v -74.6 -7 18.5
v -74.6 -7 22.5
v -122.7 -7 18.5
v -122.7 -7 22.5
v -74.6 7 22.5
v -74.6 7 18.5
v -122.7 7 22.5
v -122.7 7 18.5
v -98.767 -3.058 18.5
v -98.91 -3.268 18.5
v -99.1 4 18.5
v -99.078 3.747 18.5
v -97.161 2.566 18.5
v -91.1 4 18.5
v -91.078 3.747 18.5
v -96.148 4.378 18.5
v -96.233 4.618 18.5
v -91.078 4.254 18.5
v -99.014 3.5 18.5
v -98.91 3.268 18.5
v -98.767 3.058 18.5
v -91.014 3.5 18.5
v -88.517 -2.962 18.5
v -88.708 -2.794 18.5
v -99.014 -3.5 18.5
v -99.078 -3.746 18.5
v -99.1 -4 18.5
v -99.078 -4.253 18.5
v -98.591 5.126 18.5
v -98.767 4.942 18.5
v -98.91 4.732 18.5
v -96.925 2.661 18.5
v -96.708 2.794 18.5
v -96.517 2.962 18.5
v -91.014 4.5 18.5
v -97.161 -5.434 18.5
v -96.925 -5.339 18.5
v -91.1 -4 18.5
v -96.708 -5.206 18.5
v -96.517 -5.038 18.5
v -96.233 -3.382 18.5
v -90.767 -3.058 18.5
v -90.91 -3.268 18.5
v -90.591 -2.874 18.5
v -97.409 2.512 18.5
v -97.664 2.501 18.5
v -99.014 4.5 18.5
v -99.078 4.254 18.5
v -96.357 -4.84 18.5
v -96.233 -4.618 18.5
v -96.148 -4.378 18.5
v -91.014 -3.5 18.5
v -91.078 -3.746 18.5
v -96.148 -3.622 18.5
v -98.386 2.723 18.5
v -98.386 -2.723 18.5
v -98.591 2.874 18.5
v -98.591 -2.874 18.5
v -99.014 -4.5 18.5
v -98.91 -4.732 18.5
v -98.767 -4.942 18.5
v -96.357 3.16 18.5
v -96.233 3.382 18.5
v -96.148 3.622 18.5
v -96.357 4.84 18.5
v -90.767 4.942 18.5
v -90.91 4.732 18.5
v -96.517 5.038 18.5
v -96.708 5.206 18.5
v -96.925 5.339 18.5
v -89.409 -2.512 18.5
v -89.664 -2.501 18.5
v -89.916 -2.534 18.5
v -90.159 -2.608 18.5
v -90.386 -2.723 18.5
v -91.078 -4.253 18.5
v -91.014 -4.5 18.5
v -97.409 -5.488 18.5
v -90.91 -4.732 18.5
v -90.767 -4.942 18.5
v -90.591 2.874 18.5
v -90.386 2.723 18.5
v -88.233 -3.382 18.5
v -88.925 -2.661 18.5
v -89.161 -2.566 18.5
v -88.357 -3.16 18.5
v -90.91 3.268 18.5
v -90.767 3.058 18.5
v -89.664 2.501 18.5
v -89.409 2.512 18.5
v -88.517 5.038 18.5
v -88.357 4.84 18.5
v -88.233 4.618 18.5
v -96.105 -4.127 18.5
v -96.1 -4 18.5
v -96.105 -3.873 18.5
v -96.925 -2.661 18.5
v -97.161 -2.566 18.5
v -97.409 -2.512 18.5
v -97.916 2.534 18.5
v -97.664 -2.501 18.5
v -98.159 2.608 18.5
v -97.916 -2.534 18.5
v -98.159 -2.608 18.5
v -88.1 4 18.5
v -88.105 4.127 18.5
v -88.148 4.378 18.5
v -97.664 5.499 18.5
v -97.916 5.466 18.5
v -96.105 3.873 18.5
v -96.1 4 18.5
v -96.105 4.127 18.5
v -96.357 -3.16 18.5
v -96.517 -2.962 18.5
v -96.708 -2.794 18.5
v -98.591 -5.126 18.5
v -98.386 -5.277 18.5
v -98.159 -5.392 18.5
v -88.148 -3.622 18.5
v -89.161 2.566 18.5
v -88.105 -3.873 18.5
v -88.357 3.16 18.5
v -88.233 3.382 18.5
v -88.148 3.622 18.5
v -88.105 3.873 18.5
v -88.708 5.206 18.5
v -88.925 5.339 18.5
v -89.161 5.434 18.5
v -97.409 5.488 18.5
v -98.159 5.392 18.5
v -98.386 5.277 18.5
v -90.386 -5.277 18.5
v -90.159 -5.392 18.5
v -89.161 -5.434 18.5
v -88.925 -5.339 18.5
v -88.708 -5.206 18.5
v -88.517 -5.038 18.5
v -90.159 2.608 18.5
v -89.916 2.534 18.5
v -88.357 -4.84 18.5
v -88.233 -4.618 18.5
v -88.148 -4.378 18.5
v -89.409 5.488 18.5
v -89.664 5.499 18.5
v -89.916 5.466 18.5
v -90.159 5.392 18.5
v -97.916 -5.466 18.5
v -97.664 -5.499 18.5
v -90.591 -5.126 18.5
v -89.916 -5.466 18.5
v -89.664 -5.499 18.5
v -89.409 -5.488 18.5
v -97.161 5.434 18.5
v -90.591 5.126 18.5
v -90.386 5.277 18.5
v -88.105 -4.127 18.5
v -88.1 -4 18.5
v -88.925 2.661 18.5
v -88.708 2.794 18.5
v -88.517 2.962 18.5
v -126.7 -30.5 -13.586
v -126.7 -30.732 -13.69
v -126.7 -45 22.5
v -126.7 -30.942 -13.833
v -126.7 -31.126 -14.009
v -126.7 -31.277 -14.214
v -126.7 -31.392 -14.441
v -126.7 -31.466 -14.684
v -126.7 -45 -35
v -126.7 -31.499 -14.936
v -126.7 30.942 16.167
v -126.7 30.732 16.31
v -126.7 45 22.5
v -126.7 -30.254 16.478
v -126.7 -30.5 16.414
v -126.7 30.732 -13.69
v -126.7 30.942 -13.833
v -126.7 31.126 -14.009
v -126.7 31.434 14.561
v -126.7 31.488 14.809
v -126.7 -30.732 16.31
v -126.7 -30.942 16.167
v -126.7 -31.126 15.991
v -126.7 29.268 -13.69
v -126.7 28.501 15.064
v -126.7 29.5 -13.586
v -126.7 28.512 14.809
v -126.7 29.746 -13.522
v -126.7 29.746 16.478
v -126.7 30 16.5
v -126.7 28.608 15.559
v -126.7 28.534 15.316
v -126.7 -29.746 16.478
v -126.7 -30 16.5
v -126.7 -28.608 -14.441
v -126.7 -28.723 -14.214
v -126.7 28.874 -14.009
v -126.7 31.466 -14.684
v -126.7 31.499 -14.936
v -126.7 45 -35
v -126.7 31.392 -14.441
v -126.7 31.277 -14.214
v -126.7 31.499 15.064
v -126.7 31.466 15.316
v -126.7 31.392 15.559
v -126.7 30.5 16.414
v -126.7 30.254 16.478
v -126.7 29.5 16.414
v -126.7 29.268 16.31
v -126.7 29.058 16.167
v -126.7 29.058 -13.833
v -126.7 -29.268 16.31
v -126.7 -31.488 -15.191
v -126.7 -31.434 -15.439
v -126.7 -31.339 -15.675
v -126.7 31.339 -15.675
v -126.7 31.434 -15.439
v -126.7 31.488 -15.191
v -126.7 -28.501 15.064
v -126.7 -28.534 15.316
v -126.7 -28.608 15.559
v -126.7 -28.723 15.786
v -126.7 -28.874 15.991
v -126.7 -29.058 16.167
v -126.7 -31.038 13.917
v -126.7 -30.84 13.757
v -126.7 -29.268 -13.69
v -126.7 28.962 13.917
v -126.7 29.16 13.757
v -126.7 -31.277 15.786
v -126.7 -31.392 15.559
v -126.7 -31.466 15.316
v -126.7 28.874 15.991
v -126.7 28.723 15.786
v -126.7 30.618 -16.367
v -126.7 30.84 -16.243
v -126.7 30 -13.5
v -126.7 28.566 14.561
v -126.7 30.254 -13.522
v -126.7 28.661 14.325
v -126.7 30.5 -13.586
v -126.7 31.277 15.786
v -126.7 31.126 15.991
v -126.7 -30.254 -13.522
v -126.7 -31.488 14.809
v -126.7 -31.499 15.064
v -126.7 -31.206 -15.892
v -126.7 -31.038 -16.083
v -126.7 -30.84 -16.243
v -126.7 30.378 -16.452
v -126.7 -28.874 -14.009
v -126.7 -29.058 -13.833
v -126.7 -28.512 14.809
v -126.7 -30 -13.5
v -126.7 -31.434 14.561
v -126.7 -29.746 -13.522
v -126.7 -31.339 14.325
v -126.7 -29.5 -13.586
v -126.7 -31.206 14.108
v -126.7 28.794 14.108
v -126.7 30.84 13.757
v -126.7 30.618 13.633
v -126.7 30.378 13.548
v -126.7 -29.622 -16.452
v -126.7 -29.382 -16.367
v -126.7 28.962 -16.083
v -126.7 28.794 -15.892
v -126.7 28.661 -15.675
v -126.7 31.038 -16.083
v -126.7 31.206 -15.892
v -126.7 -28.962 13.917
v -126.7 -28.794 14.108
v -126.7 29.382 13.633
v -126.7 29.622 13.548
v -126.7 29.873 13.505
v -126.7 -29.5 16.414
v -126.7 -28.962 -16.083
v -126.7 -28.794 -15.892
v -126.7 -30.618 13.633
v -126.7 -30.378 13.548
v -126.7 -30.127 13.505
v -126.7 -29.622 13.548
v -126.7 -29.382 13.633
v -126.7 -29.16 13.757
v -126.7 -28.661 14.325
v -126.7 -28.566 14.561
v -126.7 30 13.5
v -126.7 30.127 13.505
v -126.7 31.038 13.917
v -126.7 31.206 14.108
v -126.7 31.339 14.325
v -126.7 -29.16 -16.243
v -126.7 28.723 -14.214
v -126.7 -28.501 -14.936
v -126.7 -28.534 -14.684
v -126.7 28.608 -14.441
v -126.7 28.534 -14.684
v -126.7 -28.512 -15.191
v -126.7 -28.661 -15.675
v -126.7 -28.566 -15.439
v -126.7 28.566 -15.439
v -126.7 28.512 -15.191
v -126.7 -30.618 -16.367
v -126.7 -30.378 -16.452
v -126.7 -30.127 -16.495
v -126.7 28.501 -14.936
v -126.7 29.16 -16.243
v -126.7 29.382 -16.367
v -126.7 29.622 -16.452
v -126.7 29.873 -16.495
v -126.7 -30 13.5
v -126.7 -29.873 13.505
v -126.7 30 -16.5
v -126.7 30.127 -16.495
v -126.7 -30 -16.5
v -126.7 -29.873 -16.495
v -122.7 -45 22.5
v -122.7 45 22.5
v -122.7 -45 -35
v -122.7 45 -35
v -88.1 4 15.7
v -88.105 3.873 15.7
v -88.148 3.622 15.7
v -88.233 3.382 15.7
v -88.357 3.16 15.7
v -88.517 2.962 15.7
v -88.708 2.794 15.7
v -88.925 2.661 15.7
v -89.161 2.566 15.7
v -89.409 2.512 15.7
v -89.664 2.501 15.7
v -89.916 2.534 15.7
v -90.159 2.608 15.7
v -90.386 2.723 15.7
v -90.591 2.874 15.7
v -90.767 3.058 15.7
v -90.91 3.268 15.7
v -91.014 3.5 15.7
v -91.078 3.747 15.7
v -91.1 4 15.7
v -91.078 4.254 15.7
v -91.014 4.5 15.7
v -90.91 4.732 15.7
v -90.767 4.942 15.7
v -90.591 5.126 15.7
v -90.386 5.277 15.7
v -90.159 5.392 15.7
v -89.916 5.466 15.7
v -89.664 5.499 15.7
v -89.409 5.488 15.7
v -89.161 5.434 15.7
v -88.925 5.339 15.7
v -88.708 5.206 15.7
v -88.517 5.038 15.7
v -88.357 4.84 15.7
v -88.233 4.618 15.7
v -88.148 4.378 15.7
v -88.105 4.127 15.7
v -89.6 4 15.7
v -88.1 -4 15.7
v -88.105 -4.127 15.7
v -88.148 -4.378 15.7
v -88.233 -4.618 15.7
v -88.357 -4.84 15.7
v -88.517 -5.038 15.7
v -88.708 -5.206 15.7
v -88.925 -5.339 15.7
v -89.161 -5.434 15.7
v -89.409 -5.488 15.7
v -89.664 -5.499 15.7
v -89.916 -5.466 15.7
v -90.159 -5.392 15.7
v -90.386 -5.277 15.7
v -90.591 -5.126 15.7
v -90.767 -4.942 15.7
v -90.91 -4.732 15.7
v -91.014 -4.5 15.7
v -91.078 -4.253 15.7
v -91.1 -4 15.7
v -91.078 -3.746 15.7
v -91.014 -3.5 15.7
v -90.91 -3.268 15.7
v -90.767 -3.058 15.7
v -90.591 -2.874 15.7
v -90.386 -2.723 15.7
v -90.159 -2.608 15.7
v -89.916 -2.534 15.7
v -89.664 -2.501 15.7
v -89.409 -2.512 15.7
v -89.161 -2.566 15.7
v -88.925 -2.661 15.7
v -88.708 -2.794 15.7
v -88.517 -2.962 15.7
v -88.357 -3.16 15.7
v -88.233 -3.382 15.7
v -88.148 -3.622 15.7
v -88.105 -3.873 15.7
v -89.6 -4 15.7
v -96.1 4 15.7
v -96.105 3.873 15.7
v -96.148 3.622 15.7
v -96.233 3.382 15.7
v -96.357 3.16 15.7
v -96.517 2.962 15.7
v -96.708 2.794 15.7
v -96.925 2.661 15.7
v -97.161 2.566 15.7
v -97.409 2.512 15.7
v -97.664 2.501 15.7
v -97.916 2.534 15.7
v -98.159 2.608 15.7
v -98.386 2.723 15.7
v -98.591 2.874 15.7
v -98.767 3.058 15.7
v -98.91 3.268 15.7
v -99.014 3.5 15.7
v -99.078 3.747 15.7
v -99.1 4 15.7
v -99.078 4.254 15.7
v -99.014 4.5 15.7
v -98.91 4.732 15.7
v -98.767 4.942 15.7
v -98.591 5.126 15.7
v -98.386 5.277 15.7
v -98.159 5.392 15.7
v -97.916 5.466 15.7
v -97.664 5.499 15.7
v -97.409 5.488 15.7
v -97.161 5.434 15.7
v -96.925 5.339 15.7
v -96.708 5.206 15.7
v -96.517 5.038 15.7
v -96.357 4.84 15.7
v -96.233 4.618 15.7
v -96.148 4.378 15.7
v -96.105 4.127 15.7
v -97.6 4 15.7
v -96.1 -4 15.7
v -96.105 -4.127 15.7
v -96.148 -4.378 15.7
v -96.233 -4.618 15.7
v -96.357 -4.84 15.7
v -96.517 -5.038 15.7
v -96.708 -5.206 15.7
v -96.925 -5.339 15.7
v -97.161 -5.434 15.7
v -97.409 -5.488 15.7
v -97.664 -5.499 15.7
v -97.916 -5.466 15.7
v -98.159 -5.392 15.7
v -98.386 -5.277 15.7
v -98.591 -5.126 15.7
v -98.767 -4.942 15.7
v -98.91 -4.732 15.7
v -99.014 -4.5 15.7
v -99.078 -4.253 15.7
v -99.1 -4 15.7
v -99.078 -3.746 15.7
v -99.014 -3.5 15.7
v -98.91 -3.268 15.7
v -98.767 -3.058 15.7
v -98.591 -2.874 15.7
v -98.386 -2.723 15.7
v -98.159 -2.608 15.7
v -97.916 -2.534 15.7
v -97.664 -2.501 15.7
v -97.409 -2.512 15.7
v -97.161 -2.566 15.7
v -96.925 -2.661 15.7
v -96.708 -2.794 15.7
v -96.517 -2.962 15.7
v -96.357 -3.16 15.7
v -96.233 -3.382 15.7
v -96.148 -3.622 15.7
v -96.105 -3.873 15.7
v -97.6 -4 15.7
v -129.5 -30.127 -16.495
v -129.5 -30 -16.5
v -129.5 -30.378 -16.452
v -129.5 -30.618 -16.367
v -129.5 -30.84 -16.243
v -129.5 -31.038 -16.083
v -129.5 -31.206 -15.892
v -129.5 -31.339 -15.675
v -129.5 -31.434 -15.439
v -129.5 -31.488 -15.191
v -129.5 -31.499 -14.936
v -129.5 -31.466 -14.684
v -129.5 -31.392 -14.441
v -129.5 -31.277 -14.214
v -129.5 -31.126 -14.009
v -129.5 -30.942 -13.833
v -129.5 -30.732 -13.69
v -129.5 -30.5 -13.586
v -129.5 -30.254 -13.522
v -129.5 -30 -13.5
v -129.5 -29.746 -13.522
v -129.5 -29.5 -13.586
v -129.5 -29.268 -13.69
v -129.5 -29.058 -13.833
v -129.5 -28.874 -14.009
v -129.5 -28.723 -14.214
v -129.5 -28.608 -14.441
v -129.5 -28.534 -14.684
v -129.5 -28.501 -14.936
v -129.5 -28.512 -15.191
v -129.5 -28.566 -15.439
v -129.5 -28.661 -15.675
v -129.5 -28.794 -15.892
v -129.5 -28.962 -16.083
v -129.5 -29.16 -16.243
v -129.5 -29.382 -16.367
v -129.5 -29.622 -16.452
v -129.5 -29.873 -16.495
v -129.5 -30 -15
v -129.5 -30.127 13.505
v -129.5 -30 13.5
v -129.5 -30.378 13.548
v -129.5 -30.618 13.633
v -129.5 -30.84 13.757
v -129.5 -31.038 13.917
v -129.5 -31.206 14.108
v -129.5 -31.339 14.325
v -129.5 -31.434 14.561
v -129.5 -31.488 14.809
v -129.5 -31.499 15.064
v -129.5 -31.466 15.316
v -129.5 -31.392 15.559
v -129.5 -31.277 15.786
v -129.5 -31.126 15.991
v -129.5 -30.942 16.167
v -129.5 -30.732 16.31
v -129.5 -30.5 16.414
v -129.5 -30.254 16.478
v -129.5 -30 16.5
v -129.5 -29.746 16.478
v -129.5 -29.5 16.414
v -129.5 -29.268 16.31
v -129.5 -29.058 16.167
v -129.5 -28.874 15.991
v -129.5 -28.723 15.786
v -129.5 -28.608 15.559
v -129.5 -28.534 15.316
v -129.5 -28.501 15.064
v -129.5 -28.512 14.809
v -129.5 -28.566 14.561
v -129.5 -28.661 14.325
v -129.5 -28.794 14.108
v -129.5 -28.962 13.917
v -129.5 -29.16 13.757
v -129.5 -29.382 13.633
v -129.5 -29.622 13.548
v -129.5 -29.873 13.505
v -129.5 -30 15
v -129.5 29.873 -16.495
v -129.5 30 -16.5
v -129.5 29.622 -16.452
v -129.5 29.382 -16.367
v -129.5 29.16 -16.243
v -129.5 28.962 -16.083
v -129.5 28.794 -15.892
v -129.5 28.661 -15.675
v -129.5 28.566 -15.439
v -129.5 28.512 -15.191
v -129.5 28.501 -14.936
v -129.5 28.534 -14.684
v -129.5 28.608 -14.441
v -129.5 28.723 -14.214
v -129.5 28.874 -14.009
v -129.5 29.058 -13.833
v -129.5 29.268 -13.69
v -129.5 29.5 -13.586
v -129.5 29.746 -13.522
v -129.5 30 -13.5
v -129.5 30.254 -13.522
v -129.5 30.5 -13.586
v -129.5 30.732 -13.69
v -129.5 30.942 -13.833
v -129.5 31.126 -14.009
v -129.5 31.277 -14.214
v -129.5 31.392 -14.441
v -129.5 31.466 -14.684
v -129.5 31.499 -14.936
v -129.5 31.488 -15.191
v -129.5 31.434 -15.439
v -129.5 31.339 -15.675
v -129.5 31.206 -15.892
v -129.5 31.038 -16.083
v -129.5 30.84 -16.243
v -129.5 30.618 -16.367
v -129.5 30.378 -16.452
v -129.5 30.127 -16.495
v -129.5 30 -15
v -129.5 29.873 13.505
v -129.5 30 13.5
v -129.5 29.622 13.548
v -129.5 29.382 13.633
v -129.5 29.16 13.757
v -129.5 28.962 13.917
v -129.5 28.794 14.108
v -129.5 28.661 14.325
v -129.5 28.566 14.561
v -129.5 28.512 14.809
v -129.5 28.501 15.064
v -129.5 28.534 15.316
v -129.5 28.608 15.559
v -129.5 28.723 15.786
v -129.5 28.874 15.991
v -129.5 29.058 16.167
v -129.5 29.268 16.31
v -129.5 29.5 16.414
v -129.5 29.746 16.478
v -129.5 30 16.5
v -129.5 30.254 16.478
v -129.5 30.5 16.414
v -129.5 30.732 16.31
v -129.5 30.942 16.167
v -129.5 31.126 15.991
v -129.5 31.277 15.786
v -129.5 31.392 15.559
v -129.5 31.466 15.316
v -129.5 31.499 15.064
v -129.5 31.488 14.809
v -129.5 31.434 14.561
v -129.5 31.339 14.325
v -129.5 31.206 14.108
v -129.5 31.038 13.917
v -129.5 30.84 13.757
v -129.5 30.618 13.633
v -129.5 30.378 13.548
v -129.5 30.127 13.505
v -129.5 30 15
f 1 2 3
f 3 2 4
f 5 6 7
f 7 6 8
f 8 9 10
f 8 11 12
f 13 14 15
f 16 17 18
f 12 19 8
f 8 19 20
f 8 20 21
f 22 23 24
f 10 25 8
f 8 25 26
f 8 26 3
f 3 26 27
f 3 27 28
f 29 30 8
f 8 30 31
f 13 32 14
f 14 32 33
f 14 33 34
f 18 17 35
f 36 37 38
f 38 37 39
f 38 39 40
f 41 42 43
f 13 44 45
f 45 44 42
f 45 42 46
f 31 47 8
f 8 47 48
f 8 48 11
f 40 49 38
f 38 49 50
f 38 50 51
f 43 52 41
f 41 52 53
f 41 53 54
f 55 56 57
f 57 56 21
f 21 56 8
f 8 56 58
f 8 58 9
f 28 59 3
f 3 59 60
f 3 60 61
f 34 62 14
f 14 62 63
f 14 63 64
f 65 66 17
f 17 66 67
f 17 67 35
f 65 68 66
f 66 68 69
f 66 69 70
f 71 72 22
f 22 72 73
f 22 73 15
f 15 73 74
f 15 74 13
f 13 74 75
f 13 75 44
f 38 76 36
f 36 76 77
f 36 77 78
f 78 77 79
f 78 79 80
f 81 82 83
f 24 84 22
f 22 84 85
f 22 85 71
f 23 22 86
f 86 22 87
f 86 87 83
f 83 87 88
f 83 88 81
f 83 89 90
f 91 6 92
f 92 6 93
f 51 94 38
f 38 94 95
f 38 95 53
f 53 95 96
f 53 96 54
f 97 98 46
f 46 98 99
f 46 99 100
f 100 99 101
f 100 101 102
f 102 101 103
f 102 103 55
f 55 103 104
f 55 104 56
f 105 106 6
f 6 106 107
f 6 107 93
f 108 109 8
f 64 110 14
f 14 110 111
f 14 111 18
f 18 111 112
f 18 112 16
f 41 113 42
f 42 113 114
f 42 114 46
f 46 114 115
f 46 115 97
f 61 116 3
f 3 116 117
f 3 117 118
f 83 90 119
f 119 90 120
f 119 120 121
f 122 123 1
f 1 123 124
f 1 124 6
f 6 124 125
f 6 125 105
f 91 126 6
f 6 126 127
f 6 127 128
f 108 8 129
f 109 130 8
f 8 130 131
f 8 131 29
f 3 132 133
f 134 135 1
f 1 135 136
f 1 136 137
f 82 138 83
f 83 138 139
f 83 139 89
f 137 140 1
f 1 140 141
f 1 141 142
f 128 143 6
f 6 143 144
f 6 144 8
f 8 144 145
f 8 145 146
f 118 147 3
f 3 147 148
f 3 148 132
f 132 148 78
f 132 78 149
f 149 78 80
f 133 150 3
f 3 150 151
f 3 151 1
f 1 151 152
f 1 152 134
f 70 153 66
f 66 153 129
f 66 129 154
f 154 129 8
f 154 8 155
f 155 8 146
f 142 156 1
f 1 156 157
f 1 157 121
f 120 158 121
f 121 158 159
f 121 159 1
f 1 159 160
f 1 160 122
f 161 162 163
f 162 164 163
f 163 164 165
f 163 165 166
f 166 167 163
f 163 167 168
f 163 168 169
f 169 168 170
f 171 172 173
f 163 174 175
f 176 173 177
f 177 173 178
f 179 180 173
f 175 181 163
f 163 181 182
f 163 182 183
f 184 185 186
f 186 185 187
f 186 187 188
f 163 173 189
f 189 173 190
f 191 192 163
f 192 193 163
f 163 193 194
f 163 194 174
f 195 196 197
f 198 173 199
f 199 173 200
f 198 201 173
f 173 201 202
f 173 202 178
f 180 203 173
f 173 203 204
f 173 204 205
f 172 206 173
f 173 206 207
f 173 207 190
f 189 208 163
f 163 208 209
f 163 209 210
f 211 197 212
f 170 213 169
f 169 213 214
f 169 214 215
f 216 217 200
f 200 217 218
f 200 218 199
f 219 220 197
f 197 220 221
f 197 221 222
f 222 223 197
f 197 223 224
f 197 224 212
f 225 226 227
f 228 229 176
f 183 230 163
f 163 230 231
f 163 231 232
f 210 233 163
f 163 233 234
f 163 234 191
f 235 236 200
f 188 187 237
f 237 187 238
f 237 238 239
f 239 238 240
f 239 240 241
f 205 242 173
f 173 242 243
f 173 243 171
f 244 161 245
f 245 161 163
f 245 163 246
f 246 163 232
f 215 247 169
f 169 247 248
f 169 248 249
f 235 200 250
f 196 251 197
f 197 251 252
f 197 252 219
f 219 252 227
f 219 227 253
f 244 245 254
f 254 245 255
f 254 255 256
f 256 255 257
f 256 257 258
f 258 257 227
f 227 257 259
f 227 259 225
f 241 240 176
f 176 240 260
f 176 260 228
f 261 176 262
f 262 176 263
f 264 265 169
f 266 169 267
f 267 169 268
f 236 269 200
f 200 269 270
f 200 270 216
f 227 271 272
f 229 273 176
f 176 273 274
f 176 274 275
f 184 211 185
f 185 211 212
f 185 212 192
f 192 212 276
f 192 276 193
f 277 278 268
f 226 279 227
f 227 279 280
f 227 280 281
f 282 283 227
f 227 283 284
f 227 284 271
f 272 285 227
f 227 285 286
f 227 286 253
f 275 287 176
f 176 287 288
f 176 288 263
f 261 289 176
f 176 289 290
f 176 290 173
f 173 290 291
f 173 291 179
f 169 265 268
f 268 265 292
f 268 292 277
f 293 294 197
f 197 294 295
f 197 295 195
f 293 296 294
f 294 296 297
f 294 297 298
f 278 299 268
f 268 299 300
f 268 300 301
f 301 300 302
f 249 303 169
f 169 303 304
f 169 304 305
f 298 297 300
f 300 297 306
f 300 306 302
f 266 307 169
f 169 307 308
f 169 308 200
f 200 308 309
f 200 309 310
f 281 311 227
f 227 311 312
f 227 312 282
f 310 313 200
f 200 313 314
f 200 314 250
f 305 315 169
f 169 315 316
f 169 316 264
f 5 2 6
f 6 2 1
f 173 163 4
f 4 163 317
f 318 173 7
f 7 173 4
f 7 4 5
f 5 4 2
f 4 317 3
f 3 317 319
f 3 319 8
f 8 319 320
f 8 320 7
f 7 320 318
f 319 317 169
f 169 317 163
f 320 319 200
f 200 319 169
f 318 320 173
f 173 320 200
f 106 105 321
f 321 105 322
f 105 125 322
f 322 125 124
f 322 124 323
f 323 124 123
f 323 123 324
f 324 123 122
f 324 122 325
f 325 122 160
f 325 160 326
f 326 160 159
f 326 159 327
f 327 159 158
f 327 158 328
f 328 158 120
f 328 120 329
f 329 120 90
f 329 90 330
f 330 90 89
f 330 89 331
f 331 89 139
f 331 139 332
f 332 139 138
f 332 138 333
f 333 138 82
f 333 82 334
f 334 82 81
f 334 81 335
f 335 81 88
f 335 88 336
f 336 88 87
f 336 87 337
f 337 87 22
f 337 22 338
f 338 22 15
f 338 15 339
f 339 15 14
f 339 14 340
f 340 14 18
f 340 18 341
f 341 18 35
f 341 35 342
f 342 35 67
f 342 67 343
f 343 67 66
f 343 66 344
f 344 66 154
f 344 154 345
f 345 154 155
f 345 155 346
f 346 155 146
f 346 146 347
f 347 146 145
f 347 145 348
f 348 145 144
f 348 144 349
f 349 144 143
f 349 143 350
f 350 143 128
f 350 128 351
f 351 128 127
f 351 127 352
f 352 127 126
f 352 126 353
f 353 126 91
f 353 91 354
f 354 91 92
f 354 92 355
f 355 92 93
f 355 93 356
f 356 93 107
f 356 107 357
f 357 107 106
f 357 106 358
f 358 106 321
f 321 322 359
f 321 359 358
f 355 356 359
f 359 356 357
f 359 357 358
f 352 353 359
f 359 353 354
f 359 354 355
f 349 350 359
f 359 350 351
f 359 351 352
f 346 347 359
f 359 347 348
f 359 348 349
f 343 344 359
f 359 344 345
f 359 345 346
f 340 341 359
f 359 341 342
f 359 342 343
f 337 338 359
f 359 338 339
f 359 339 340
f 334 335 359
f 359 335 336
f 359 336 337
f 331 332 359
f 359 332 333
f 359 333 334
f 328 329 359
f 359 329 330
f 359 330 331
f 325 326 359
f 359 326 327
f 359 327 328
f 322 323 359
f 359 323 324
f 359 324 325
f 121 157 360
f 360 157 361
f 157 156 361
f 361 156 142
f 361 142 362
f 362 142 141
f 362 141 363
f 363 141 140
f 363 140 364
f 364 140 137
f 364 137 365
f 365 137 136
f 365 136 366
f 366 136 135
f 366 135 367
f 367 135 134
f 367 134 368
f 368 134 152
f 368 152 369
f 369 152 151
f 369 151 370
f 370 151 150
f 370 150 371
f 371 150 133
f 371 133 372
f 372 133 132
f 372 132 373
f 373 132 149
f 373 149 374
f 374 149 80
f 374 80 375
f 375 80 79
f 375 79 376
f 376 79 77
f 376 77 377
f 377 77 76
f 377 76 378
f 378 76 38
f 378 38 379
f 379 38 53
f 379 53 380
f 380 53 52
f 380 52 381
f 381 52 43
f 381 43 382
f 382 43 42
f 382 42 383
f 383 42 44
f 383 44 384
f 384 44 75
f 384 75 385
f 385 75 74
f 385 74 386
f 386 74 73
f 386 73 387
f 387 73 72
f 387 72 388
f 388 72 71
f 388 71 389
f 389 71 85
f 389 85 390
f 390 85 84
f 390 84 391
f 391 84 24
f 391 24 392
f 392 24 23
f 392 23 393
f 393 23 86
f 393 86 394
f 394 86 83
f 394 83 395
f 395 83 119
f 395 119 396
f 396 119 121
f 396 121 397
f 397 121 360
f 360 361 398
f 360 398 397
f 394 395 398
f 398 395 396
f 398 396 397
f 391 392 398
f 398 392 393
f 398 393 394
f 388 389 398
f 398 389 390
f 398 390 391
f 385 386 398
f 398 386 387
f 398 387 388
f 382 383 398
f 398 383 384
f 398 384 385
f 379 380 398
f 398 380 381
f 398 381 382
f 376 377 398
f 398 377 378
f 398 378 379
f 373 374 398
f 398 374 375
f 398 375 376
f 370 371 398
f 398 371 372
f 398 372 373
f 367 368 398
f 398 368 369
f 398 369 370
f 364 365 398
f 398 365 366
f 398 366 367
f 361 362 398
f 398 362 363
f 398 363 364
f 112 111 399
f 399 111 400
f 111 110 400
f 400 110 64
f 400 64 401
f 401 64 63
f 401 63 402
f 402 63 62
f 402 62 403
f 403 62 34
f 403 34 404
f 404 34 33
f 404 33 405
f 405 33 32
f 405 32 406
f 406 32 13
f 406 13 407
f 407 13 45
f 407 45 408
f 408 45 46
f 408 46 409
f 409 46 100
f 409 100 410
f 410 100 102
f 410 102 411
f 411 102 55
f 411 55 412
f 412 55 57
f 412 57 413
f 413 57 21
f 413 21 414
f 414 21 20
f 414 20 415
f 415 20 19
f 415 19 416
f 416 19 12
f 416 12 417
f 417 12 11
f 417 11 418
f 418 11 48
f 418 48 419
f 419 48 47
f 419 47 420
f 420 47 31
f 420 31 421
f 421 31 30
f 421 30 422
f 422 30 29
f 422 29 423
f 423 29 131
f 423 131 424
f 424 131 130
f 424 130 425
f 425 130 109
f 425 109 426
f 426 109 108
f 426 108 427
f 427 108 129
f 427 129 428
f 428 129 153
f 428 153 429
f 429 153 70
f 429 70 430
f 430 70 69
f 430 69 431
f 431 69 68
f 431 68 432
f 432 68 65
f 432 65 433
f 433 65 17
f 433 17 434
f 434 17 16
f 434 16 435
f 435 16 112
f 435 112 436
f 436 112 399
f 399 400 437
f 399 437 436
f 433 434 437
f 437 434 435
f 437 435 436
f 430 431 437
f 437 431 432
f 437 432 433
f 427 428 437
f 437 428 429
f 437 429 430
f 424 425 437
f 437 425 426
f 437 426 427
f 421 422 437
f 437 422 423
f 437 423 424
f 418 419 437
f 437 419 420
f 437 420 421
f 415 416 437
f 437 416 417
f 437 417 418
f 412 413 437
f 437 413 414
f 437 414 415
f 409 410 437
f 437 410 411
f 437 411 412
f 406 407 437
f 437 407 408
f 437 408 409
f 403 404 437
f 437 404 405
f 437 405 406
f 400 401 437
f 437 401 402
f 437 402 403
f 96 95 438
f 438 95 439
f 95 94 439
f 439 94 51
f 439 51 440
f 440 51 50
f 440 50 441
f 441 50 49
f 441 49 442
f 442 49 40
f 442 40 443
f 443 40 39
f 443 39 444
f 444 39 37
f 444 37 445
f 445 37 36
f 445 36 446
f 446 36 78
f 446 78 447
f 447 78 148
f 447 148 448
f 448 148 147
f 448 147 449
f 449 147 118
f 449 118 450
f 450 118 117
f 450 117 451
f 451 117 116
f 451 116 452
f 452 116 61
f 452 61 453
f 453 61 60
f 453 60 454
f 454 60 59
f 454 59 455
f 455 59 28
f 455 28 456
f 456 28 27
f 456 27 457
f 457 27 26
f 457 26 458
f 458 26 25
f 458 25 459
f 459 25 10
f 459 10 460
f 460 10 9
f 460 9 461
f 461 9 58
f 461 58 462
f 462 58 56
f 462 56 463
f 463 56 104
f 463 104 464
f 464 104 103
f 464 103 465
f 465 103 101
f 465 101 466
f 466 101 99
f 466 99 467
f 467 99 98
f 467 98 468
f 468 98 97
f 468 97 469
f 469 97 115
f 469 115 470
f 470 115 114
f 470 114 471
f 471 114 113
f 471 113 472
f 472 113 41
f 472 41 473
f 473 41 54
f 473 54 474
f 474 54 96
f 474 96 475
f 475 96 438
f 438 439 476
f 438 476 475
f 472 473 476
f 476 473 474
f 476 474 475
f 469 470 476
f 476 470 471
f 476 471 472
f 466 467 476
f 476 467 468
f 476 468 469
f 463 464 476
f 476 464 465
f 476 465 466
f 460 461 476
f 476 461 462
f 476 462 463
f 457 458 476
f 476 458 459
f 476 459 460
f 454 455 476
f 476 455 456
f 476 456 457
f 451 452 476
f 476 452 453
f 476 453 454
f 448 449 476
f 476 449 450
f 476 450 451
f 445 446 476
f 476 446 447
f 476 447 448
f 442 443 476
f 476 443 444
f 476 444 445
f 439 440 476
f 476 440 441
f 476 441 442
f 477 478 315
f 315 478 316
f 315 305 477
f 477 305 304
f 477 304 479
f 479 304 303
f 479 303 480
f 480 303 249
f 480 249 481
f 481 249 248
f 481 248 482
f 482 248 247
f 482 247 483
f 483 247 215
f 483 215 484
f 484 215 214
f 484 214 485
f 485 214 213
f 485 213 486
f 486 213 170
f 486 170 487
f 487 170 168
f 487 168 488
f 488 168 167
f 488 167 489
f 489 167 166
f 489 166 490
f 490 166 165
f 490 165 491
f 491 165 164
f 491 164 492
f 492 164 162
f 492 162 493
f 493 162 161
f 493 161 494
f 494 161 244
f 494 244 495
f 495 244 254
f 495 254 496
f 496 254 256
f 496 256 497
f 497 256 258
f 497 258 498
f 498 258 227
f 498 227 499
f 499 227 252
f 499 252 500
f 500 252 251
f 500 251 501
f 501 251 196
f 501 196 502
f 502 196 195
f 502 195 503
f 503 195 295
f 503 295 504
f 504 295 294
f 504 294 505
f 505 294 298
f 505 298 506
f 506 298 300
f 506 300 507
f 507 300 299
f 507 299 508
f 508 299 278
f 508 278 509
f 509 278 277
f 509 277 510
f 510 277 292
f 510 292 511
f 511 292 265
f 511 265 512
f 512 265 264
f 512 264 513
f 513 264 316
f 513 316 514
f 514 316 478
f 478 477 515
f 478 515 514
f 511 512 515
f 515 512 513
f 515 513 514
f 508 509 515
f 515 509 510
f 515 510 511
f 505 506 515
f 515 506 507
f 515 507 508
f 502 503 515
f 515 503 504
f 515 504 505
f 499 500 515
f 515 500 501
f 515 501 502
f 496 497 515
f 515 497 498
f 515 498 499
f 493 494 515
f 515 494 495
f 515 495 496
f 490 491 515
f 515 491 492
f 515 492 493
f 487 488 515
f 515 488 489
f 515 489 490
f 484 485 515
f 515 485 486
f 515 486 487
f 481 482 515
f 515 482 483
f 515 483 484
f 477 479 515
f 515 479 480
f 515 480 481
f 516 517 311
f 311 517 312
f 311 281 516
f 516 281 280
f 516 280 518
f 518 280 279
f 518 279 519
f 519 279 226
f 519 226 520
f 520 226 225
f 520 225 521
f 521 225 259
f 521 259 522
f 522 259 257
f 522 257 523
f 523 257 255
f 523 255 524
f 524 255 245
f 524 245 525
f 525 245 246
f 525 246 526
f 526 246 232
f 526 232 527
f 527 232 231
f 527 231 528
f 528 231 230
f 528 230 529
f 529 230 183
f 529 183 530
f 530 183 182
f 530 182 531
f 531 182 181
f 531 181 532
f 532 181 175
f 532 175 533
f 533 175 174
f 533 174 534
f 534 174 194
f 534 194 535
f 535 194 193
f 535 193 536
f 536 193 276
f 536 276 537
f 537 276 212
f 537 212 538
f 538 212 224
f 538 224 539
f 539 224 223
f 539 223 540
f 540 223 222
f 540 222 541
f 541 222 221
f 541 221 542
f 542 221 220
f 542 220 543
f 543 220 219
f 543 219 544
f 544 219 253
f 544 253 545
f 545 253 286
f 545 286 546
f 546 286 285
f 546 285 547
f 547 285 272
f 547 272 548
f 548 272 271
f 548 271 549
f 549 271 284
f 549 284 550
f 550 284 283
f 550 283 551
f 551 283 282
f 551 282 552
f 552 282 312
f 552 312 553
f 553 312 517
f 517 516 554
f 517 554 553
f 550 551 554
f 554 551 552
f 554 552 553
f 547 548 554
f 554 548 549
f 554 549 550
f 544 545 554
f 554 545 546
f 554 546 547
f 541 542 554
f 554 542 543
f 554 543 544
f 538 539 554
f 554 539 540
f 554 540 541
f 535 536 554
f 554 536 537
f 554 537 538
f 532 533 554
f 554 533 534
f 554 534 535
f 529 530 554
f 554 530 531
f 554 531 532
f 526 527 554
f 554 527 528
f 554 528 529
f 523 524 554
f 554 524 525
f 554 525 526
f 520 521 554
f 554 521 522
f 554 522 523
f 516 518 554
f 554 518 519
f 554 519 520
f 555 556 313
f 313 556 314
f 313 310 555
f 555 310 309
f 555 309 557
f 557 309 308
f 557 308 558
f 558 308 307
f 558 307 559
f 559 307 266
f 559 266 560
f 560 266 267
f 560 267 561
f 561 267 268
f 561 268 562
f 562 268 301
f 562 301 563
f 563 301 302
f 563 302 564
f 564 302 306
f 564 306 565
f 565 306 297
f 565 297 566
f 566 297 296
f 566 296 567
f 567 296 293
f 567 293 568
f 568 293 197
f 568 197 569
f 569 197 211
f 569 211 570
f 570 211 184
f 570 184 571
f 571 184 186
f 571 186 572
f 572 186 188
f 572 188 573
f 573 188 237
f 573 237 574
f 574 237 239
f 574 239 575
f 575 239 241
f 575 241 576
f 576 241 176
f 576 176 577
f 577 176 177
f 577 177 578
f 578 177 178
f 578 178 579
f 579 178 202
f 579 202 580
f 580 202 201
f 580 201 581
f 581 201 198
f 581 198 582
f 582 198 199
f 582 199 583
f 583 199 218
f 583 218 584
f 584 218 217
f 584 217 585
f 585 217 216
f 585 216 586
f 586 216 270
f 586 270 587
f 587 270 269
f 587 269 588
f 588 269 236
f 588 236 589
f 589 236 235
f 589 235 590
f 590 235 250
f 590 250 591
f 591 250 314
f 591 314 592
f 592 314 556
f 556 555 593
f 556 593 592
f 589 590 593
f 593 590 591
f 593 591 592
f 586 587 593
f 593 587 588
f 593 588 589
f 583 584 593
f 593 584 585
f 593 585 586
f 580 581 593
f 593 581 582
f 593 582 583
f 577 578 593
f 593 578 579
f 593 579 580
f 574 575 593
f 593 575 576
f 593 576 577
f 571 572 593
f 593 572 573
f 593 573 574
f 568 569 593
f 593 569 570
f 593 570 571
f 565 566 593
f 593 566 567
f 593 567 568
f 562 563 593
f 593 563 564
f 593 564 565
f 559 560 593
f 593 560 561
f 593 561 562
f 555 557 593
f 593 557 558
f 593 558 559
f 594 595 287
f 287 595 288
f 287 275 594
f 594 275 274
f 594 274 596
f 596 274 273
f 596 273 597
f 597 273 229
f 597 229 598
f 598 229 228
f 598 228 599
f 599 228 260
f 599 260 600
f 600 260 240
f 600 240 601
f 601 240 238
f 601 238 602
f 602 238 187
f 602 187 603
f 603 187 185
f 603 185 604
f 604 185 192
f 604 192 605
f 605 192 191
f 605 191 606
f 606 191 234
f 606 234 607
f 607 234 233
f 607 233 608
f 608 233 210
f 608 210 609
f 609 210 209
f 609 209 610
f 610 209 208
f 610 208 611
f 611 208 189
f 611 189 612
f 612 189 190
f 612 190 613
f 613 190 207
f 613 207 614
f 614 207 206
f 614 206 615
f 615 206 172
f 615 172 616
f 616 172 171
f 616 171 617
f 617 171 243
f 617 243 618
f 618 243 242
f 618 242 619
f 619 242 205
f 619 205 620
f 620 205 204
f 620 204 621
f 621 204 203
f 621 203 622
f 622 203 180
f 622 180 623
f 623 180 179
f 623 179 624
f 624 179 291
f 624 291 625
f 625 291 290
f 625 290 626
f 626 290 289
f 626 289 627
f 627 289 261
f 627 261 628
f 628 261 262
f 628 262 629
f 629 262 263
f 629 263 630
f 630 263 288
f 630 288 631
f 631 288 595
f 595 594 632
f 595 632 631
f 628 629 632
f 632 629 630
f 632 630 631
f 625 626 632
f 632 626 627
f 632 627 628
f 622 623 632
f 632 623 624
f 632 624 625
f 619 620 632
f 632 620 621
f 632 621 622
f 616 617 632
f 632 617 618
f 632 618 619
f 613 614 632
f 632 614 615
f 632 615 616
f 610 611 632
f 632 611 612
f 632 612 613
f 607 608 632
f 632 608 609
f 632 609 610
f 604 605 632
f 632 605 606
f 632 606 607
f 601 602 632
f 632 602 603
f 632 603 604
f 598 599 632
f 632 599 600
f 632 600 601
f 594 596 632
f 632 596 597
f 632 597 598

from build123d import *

# Parameters (mm, degrees)
SKETCH1_W           = 52.1
SKETCH1_H           = 14
BOSS_EXTRUDE1_DEPTH = 4
SKETCH2_W           = 57.5
SKETCH2_H           = 90
BOSS_EXTRUDE2_DEPTH = 4
SKETCH3_R           = 1.5
BOSS_EXTRUDE3_DEPTH = 2.8
SKETCH4_R           = 1.5
BOSS_EXTRUDE4_DEPTH = 2.8


with BuildPart() as part:
    # Sketch1 → Boss-Extrude1 (new body)
    with BuildSketch(Plane.XY.offset(18.5)):
        with Locations((-100.65, 0)):
            Rectangle(SKETCH1_W, SKETCH1_H)
    extrude(amount=BOSS_EXTRUDE1_DEPTH)

    # Sketch2 → Boss-Extrude2 (add)
    with BuildSketch(Plane(origin=(-126.7, 0, 0), x_dir=(0, 0, -1), z_dir=(1, 0, 0))):
        with Locations((6.25, 0)):
            Rectangle(SKETCH2_W, SKETCH2_H)
    extrude(amount=BOSS_EXTRUDE2_DEPTH)

    # Sketch3 → Boss-Extrude3 (add)
    with BuildSketch(Plane.XY.offset(15.7)):
        with Locations((-89.6, 4)):
            Circle(SKETCH3_R)
        with Locations((-89.6, -4)):
            Circle(SKETCH3_R)
        with Locations((-97.6, 4)):
            Circle(SKETCH3_R)
        with Locations((-97.6, -4)):
            Circle(SKETCH3_R)
    extrude(amount=BOSS_EXTRUDE3_DEPTH)

    # Sketch4 → Boss-Extrude4 (add)
    with BuildSketch(Plane(origin=(-129.5, 0, 0), x_dir=(0, 0, -1), z_dir=(1, 0, 0))):
        with Locations((15, -30)):
            Circle(SKETCH4_R)
        with Locations((-15, -30)):
            Circle(SKETCH4_R)
        with Locations((15, 30)):
            Circle(SKETCH4_R)
        with Locations((-15, 30)):
            Circle(SKETCH4_R)
    extrude(amount=BOSS_EXTRUDE4_DEPTH)


solid = part.part
